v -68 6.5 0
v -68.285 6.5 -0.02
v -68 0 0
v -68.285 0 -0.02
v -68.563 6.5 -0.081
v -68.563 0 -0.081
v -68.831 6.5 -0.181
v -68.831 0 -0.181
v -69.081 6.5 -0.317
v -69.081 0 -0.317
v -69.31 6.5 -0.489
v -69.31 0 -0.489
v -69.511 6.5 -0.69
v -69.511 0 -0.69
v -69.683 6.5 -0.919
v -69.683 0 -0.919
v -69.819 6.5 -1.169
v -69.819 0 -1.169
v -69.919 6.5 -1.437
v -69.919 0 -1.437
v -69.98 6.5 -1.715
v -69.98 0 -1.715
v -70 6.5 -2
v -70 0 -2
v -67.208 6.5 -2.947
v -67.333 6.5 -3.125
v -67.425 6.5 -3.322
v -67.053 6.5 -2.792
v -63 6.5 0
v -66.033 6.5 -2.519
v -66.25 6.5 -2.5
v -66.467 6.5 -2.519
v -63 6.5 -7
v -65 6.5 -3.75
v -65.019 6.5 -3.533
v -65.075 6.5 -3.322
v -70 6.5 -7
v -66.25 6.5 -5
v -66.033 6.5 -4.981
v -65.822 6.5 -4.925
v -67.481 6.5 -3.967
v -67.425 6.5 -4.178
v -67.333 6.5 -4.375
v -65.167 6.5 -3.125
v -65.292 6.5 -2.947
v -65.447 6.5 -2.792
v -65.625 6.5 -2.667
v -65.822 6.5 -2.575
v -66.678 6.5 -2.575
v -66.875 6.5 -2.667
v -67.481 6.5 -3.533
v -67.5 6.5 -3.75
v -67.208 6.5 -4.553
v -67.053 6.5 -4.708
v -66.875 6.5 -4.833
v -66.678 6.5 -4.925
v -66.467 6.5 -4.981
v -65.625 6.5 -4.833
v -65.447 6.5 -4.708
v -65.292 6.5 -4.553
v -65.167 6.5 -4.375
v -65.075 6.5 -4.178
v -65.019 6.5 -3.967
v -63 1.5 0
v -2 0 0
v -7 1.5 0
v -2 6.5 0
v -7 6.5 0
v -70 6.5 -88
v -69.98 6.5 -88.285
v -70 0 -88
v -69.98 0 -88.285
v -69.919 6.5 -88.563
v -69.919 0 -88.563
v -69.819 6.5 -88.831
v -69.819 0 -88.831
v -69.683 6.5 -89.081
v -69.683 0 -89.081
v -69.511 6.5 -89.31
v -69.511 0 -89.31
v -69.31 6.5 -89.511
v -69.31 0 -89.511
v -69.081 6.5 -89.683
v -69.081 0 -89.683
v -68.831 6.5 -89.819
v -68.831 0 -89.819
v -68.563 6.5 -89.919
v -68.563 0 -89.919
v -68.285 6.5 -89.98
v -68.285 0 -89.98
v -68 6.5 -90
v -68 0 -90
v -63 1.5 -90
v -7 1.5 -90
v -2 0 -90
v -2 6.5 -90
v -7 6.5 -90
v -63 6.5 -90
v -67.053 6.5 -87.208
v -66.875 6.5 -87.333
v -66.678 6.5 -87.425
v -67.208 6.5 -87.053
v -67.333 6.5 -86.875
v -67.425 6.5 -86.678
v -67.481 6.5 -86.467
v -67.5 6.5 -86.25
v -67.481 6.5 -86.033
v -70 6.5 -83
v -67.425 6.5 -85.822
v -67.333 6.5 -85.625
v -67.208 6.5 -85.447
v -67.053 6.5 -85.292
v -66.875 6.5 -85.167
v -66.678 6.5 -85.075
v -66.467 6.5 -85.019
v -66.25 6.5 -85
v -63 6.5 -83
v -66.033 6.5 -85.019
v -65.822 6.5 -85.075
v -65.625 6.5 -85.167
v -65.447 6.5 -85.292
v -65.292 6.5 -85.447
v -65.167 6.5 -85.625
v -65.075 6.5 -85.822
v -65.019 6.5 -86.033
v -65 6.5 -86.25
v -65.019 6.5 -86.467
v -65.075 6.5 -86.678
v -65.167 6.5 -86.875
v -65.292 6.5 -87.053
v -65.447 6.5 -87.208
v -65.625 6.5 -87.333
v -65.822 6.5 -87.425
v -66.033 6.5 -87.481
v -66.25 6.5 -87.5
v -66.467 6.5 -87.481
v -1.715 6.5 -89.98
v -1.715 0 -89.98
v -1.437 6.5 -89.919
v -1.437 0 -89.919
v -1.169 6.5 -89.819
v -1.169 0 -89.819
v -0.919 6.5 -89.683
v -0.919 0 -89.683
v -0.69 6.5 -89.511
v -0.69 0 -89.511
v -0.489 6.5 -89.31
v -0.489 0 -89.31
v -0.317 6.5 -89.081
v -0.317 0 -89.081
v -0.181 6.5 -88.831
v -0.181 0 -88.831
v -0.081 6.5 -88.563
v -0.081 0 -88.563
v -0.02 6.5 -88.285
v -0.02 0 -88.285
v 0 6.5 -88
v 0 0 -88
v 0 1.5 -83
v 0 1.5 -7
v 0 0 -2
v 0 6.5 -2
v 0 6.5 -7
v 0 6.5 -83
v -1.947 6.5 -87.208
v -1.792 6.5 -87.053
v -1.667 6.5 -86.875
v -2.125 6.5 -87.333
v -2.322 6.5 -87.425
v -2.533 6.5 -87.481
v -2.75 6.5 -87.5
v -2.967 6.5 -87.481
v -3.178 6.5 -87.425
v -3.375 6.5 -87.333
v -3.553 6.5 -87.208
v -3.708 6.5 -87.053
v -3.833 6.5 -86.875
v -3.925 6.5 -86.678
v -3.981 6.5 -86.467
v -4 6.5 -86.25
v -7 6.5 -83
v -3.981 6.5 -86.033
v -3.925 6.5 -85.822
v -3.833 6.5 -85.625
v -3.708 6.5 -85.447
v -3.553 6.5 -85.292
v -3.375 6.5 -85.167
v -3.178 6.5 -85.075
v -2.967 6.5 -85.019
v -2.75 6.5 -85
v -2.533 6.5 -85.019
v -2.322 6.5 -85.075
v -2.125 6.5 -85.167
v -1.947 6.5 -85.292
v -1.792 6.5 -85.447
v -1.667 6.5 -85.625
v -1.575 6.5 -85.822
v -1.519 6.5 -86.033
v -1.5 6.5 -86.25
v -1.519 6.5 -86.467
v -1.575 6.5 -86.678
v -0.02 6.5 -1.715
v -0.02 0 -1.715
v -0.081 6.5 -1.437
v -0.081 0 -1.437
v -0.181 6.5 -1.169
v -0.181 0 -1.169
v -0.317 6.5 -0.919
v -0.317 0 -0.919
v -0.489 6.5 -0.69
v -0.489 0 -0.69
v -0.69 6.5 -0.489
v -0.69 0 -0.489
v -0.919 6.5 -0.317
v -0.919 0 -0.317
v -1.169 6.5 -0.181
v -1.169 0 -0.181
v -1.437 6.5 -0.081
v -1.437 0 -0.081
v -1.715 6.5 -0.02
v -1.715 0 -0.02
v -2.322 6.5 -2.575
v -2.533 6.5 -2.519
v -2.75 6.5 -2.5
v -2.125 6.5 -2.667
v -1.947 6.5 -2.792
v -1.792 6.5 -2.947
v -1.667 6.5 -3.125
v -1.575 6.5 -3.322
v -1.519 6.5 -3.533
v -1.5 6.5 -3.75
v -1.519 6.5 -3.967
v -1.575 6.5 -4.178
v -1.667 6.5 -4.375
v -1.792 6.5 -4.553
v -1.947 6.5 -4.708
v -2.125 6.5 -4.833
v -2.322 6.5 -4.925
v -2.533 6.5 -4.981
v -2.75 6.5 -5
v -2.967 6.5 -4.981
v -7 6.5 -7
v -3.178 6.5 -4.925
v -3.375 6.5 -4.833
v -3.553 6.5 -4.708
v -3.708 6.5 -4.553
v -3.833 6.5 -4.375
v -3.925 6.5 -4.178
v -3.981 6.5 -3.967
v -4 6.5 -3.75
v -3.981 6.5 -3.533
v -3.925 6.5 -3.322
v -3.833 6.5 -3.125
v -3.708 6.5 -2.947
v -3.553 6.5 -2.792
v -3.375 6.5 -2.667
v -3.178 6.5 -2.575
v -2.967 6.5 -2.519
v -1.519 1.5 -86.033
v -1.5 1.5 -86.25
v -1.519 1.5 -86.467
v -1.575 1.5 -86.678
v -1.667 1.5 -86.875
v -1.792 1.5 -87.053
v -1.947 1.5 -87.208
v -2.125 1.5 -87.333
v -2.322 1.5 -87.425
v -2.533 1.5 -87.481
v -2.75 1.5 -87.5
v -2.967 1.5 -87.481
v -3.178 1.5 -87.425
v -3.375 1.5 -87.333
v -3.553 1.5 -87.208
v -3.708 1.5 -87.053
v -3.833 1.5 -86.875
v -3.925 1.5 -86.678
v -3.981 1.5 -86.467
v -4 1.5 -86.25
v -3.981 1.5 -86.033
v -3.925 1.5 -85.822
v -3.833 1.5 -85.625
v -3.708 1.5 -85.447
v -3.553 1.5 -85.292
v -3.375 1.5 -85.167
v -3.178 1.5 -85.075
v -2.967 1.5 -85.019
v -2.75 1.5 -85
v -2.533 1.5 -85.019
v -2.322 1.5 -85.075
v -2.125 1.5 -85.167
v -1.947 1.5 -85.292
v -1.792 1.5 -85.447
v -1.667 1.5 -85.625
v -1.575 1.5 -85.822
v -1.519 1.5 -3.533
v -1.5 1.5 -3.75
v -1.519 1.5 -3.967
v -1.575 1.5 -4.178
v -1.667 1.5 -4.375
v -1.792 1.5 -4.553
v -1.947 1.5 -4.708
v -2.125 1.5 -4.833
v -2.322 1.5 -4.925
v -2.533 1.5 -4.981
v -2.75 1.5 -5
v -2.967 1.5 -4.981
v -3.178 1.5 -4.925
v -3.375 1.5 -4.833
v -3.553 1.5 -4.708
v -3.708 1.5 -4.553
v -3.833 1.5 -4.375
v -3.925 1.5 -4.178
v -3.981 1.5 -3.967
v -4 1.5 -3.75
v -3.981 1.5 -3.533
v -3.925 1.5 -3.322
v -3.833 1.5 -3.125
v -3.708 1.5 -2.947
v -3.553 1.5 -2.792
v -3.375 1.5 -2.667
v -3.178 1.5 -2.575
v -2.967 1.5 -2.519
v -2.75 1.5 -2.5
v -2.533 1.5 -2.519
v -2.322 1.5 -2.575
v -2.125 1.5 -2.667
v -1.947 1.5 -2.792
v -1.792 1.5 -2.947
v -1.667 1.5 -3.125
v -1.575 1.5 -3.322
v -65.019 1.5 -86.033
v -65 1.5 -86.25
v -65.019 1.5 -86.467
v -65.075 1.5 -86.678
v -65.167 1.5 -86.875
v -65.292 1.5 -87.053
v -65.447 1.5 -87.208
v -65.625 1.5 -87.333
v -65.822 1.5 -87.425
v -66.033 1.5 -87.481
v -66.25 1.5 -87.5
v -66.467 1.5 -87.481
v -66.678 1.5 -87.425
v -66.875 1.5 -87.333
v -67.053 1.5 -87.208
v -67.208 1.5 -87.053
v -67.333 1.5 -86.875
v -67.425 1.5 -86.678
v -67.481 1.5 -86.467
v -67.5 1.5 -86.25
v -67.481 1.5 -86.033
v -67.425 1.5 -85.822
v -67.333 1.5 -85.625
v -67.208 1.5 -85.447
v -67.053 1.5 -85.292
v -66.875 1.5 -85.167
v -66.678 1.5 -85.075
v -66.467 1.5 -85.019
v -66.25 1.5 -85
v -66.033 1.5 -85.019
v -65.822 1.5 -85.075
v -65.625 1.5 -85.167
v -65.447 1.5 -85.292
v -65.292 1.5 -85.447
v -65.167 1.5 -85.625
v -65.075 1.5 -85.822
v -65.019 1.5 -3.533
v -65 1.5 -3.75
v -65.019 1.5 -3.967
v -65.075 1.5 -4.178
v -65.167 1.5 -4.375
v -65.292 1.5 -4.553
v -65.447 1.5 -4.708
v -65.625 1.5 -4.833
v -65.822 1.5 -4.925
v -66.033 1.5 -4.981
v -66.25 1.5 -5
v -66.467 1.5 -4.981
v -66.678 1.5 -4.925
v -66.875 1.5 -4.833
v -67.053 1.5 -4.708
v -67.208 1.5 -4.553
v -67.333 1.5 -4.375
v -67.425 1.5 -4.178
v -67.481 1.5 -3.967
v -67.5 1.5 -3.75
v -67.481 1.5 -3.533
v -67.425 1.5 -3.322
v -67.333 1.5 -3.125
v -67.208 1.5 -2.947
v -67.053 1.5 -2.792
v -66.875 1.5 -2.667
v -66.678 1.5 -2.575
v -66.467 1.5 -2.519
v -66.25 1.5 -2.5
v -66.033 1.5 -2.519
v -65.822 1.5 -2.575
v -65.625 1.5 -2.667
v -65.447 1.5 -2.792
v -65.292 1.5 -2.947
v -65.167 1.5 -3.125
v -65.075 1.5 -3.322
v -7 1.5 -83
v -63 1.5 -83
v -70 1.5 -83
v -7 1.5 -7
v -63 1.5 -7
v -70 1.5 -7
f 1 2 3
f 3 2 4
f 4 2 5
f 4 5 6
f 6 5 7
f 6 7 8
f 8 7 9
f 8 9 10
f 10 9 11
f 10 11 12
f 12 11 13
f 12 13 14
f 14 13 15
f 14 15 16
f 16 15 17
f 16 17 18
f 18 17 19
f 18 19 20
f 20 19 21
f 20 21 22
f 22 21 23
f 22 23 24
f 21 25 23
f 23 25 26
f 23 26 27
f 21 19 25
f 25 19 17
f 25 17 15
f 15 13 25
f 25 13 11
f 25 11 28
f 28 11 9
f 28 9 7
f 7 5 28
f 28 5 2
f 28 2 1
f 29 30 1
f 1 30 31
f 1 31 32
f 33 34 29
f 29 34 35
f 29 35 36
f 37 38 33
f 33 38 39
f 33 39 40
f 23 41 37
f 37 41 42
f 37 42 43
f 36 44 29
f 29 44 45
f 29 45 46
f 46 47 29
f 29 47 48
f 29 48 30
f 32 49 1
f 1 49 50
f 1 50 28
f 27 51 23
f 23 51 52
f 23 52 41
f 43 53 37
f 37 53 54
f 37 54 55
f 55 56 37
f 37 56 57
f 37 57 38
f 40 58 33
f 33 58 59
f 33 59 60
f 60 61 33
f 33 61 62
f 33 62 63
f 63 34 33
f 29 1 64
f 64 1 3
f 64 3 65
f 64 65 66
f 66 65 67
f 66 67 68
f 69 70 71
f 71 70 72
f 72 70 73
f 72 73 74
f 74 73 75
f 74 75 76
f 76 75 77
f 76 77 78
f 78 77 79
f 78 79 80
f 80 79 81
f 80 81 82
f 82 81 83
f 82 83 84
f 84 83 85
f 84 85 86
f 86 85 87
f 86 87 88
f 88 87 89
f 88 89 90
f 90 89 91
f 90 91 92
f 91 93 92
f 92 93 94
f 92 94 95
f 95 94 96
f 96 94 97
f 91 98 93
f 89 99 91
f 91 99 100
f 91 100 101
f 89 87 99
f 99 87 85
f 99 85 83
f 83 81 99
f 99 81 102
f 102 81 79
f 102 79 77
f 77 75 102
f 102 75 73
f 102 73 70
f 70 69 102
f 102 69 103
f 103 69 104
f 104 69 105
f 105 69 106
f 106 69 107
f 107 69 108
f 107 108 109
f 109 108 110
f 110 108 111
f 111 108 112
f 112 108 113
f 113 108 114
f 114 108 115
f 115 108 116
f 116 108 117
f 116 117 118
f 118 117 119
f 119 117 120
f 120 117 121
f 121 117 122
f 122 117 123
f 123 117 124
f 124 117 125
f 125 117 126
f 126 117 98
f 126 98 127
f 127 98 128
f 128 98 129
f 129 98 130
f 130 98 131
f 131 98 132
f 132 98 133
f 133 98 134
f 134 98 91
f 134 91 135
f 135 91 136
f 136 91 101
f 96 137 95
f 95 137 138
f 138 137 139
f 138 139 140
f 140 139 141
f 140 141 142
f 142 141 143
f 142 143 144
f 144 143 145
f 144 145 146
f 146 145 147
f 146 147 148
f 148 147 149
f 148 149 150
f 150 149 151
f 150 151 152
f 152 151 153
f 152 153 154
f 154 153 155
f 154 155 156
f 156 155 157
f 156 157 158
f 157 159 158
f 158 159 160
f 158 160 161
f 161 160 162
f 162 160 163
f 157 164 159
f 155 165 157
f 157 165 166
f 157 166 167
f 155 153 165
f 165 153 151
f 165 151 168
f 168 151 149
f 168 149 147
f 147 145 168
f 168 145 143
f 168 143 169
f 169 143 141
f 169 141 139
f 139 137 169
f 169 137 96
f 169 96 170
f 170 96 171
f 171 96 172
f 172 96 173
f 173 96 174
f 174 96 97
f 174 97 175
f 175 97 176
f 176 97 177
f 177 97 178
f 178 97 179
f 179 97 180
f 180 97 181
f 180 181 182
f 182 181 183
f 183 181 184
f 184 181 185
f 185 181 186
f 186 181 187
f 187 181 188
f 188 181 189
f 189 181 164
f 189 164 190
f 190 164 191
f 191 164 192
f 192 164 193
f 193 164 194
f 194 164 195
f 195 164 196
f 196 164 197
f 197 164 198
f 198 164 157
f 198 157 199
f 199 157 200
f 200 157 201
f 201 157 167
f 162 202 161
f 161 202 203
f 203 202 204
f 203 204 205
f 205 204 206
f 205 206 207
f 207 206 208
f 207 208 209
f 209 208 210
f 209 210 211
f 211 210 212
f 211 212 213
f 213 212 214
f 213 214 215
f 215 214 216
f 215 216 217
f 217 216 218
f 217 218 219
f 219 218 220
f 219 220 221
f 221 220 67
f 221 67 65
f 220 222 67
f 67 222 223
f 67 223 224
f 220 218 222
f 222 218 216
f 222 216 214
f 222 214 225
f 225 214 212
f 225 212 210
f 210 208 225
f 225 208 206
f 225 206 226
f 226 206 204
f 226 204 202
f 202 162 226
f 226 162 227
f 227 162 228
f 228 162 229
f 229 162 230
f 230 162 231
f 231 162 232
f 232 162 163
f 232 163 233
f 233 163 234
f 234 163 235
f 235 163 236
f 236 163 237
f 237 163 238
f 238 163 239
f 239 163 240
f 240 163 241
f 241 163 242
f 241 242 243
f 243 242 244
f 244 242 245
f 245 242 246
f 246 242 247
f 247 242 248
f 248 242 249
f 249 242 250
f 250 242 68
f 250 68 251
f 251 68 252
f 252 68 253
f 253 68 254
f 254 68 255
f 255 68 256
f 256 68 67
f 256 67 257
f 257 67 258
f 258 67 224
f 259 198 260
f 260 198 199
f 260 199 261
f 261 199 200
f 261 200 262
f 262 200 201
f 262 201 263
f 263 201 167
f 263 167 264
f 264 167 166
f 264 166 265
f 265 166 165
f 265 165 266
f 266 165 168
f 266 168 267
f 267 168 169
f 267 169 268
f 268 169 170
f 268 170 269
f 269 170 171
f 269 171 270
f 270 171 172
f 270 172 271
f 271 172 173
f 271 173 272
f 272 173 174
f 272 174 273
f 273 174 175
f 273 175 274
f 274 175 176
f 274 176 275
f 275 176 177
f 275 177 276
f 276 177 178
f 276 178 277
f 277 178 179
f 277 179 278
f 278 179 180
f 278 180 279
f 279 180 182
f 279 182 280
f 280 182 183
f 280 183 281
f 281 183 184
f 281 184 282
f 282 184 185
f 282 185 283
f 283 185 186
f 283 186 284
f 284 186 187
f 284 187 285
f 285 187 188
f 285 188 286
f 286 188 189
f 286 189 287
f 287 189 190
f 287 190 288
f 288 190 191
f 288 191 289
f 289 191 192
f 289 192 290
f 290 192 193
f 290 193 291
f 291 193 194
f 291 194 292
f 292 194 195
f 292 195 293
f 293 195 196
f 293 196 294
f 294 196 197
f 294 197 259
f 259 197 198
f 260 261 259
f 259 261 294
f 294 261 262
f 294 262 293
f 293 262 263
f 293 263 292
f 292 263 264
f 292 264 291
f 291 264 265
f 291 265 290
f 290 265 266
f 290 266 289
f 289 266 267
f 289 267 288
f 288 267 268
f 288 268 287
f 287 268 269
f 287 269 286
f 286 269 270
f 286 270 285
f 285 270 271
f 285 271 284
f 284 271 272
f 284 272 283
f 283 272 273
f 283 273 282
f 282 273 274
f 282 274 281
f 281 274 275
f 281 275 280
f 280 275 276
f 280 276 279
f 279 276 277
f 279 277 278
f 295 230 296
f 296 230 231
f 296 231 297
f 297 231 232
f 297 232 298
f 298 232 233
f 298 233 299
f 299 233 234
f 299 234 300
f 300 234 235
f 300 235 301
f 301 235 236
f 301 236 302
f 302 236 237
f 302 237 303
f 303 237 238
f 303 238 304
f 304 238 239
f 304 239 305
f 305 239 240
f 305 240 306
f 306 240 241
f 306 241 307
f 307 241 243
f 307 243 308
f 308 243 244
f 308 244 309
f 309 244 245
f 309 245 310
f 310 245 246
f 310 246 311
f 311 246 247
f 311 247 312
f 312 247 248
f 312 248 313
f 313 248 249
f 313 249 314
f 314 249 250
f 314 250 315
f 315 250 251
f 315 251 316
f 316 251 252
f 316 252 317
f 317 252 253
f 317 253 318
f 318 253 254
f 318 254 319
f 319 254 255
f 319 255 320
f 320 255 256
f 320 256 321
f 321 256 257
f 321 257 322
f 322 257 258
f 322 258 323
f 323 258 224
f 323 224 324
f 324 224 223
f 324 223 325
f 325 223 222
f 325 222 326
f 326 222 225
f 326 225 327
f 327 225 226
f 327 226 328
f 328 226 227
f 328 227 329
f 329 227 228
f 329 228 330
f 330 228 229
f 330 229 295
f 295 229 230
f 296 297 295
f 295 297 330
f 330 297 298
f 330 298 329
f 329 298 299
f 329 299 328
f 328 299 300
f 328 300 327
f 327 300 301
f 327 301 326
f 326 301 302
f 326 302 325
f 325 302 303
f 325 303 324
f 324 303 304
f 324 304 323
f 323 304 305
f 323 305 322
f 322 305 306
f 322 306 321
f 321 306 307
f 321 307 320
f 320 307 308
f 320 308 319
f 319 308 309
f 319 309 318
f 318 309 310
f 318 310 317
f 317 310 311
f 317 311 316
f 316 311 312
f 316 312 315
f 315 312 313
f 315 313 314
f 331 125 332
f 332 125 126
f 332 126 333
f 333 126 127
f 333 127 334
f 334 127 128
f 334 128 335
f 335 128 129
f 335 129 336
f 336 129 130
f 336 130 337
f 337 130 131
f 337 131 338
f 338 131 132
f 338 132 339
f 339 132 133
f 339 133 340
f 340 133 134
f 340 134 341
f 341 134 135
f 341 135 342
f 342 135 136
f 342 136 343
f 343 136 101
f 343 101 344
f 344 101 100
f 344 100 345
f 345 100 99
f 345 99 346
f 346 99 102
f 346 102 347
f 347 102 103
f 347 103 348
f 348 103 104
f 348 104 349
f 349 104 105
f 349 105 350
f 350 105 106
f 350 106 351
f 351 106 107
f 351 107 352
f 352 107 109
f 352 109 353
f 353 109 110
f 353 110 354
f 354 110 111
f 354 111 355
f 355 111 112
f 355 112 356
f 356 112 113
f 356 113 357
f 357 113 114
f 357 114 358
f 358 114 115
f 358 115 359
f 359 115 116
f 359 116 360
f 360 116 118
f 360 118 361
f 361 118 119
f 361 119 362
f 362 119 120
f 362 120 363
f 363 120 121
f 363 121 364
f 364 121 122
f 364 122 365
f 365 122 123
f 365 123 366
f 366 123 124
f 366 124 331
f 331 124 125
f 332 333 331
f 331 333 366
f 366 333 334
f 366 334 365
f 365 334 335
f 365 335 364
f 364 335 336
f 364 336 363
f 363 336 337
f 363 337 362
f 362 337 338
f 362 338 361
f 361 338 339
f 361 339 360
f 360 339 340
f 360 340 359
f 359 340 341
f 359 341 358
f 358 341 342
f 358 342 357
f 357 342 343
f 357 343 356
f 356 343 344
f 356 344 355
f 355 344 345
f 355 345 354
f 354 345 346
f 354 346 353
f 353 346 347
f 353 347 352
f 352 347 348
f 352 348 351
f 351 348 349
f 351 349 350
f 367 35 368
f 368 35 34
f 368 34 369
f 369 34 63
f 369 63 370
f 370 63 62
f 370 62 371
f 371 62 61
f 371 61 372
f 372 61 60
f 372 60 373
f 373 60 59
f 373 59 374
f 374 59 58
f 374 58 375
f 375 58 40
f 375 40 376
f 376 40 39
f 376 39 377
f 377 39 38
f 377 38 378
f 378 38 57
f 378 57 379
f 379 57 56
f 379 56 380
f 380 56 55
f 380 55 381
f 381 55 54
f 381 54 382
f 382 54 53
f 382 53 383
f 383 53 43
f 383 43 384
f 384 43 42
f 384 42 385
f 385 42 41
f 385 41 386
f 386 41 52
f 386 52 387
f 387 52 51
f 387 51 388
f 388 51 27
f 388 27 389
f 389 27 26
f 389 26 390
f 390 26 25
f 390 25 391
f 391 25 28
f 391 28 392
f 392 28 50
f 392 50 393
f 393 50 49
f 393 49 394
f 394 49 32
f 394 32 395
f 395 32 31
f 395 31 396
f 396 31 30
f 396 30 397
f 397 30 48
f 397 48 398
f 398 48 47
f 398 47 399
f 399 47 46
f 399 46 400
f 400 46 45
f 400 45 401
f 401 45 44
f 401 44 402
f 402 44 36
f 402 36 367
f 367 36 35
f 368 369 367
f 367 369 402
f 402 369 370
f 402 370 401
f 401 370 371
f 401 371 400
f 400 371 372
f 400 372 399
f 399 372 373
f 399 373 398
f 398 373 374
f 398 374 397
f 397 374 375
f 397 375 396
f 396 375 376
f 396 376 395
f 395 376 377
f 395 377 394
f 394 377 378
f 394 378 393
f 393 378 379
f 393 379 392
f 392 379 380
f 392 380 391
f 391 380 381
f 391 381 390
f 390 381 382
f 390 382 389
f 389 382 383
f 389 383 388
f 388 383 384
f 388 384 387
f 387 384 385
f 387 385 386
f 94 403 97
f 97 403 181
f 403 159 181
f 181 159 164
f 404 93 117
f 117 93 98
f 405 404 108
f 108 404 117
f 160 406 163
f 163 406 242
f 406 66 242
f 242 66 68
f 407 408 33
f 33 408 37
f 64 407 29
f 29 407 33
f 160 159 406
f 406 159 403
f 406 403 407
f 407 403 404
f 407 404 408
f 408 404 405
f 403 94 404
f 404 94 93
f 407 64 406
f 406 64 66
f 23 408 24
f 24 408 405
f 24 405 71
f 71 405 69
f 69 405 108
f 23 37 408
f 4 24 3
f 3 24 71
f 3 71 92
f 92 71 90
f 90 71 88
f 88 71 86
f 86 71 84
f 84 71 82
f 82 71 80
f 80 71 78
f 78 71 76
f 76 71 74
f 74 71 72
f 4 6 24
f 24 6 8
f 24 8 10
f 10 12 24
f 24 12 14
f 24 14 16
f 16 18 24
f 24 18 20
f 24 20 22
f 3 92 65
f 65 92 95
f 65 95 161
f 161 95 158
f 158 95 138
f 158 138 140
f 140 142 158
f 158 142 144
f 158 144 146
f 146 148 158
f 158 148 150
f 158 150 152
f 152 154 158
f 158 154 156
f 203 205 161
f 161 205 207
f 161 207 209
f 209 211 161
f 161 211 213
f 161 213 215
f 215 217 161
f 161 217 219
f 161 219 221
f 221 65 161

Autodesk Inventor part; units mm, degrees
ref_plane "YZ Plane" through (0, 0, 0) normal (1, 0, 0) x (0, 1, 0)
ref_plane "XZ Plane" through (0, 0, 0) normal (0, 1, 0) x (-1, 0, 0)
ref_plane "XY Plane" through (0, 0, 0) normal (0, 0, 1) x (1, 0, 0)
sketch "Эскиз1" plane through (0, 0, 0) normal (0, 1, 0) x (-1, 0, 0)
  line L0 (0, 0) -> (70, 0)
  line L1 (70, 0) -> (70, -90)
  line L2 (70, -90) -> (0, -90)
  line L3 (0, -90) -> (0, 0)
  dimension "d0" = 70
  dimension "d1" = 90
extrude "Выдавливание1" add sketch "Эскиз1" along normal blind 1.5
sketch "Эскиз2" plane through (0, 1.5, 0) normal (0, 1, 0) x (1, 0, 0)
  line L0 (0, 0) -> (0, 90) projected
  line L1 (0, 0) -> (-7, 0)
  line L2 (-7, 0) -> (-7, 7)
  line L3 (-7, 7) -> (0, 7)
  line L4 (0, 7) -> (0, 0)
  line L5 (-70, 0) -> (0, 0) projected
  line L6 (-70, 0) -> (-63, 0)
  line L7 (-63, 0) -> (-63, 7)
  line L8 (-63, 7) -> (-70, 7)
  line L9 (-70, 7) -> (-70, 0)
  line L10 (0, 90) -> (-70, 90) projected
  line L11 (-70, 90) -> (-63, 90)
  line L12 (-63, 90) -> (-63, 83)
  line L13 (-63, 83) -> (-70, 83)
  line L14 (-70, 83) -> (-70, 90)
  line L15 (0, 90) -> (-7, 90)
  line L16 (-7, 90) -> (-7, 83)
  line L17 (-7, 83) -> (0, 83)
  line L18 (0, 83) -> (0, 90)
  point P0 (0, 7)
  point P1 (0, 83)
  point P2 (-63, 0)
  dimension "d4" = 7
  dimension "d5" = 7
  dimension "d6" = 7
  dimension "d7" = 7
  dimension "d8" = 7
  dimension "d9" = 7
  dimension "d10" = 7
  dimension "d11" = 7
extrude "Выдавливание2" add sketch "Эскиз2" along normal blind 5
sketch "Эскиз3" plane through (0, 6.5, 0) normal (0, 1, 0) x (1, 0, 0)
  circle A0 centre (-2.75, 86.25) radius 1.25
  circle A1 centre (-66.25, 86.25) radius 1.25
  circle A2 centre (-66.25, 3.75) radius 1.25
  circle A3 centre (-2.75, 3.75) radius 1.25
  line L0 (-63, 90) -> (-70, 90) projected
  line L1 (0, 90) -> (-7, 90) projected
  line L2 (-70, 0) -> (-63, 0) projected
  line L3 (-7, 0) -> (0, 0) projected
  line L4 (-70, 90) -> (-70, 83) projected
  line L5 (0, 7) -> (0, 83) projected
  line L6 (-70, 7) -> (-70, 0) projected
  line L7 (0, 0) -> (0, 7) projected
  dimension "d14" = 2.5
  dimension "d15" = 2.5
  dimension "d16" = 2.5
  dimension "d17" = 2.5
  dimension "d18" = 3.75
  dimension "d19" = 3.75
  dimension "d20" = 3.75
  dimension "d21" = 3.75
  dimension "d22" = 3.75
  dimension "d23" = 2.75
  dimension "d24" = 3.75
  dimension "d25" = 2.75
extrude "Выдавливание3" cut sketch "Эскиз3" against normal blind 5
fillet "Сопряжение1" radius 2 4 edges at (0, 3.25, 0) (0, 3.25, -90) (-70, 3.25, -90) (-70, 3.25, 0)
properties part number "SensorsC_Holder"
